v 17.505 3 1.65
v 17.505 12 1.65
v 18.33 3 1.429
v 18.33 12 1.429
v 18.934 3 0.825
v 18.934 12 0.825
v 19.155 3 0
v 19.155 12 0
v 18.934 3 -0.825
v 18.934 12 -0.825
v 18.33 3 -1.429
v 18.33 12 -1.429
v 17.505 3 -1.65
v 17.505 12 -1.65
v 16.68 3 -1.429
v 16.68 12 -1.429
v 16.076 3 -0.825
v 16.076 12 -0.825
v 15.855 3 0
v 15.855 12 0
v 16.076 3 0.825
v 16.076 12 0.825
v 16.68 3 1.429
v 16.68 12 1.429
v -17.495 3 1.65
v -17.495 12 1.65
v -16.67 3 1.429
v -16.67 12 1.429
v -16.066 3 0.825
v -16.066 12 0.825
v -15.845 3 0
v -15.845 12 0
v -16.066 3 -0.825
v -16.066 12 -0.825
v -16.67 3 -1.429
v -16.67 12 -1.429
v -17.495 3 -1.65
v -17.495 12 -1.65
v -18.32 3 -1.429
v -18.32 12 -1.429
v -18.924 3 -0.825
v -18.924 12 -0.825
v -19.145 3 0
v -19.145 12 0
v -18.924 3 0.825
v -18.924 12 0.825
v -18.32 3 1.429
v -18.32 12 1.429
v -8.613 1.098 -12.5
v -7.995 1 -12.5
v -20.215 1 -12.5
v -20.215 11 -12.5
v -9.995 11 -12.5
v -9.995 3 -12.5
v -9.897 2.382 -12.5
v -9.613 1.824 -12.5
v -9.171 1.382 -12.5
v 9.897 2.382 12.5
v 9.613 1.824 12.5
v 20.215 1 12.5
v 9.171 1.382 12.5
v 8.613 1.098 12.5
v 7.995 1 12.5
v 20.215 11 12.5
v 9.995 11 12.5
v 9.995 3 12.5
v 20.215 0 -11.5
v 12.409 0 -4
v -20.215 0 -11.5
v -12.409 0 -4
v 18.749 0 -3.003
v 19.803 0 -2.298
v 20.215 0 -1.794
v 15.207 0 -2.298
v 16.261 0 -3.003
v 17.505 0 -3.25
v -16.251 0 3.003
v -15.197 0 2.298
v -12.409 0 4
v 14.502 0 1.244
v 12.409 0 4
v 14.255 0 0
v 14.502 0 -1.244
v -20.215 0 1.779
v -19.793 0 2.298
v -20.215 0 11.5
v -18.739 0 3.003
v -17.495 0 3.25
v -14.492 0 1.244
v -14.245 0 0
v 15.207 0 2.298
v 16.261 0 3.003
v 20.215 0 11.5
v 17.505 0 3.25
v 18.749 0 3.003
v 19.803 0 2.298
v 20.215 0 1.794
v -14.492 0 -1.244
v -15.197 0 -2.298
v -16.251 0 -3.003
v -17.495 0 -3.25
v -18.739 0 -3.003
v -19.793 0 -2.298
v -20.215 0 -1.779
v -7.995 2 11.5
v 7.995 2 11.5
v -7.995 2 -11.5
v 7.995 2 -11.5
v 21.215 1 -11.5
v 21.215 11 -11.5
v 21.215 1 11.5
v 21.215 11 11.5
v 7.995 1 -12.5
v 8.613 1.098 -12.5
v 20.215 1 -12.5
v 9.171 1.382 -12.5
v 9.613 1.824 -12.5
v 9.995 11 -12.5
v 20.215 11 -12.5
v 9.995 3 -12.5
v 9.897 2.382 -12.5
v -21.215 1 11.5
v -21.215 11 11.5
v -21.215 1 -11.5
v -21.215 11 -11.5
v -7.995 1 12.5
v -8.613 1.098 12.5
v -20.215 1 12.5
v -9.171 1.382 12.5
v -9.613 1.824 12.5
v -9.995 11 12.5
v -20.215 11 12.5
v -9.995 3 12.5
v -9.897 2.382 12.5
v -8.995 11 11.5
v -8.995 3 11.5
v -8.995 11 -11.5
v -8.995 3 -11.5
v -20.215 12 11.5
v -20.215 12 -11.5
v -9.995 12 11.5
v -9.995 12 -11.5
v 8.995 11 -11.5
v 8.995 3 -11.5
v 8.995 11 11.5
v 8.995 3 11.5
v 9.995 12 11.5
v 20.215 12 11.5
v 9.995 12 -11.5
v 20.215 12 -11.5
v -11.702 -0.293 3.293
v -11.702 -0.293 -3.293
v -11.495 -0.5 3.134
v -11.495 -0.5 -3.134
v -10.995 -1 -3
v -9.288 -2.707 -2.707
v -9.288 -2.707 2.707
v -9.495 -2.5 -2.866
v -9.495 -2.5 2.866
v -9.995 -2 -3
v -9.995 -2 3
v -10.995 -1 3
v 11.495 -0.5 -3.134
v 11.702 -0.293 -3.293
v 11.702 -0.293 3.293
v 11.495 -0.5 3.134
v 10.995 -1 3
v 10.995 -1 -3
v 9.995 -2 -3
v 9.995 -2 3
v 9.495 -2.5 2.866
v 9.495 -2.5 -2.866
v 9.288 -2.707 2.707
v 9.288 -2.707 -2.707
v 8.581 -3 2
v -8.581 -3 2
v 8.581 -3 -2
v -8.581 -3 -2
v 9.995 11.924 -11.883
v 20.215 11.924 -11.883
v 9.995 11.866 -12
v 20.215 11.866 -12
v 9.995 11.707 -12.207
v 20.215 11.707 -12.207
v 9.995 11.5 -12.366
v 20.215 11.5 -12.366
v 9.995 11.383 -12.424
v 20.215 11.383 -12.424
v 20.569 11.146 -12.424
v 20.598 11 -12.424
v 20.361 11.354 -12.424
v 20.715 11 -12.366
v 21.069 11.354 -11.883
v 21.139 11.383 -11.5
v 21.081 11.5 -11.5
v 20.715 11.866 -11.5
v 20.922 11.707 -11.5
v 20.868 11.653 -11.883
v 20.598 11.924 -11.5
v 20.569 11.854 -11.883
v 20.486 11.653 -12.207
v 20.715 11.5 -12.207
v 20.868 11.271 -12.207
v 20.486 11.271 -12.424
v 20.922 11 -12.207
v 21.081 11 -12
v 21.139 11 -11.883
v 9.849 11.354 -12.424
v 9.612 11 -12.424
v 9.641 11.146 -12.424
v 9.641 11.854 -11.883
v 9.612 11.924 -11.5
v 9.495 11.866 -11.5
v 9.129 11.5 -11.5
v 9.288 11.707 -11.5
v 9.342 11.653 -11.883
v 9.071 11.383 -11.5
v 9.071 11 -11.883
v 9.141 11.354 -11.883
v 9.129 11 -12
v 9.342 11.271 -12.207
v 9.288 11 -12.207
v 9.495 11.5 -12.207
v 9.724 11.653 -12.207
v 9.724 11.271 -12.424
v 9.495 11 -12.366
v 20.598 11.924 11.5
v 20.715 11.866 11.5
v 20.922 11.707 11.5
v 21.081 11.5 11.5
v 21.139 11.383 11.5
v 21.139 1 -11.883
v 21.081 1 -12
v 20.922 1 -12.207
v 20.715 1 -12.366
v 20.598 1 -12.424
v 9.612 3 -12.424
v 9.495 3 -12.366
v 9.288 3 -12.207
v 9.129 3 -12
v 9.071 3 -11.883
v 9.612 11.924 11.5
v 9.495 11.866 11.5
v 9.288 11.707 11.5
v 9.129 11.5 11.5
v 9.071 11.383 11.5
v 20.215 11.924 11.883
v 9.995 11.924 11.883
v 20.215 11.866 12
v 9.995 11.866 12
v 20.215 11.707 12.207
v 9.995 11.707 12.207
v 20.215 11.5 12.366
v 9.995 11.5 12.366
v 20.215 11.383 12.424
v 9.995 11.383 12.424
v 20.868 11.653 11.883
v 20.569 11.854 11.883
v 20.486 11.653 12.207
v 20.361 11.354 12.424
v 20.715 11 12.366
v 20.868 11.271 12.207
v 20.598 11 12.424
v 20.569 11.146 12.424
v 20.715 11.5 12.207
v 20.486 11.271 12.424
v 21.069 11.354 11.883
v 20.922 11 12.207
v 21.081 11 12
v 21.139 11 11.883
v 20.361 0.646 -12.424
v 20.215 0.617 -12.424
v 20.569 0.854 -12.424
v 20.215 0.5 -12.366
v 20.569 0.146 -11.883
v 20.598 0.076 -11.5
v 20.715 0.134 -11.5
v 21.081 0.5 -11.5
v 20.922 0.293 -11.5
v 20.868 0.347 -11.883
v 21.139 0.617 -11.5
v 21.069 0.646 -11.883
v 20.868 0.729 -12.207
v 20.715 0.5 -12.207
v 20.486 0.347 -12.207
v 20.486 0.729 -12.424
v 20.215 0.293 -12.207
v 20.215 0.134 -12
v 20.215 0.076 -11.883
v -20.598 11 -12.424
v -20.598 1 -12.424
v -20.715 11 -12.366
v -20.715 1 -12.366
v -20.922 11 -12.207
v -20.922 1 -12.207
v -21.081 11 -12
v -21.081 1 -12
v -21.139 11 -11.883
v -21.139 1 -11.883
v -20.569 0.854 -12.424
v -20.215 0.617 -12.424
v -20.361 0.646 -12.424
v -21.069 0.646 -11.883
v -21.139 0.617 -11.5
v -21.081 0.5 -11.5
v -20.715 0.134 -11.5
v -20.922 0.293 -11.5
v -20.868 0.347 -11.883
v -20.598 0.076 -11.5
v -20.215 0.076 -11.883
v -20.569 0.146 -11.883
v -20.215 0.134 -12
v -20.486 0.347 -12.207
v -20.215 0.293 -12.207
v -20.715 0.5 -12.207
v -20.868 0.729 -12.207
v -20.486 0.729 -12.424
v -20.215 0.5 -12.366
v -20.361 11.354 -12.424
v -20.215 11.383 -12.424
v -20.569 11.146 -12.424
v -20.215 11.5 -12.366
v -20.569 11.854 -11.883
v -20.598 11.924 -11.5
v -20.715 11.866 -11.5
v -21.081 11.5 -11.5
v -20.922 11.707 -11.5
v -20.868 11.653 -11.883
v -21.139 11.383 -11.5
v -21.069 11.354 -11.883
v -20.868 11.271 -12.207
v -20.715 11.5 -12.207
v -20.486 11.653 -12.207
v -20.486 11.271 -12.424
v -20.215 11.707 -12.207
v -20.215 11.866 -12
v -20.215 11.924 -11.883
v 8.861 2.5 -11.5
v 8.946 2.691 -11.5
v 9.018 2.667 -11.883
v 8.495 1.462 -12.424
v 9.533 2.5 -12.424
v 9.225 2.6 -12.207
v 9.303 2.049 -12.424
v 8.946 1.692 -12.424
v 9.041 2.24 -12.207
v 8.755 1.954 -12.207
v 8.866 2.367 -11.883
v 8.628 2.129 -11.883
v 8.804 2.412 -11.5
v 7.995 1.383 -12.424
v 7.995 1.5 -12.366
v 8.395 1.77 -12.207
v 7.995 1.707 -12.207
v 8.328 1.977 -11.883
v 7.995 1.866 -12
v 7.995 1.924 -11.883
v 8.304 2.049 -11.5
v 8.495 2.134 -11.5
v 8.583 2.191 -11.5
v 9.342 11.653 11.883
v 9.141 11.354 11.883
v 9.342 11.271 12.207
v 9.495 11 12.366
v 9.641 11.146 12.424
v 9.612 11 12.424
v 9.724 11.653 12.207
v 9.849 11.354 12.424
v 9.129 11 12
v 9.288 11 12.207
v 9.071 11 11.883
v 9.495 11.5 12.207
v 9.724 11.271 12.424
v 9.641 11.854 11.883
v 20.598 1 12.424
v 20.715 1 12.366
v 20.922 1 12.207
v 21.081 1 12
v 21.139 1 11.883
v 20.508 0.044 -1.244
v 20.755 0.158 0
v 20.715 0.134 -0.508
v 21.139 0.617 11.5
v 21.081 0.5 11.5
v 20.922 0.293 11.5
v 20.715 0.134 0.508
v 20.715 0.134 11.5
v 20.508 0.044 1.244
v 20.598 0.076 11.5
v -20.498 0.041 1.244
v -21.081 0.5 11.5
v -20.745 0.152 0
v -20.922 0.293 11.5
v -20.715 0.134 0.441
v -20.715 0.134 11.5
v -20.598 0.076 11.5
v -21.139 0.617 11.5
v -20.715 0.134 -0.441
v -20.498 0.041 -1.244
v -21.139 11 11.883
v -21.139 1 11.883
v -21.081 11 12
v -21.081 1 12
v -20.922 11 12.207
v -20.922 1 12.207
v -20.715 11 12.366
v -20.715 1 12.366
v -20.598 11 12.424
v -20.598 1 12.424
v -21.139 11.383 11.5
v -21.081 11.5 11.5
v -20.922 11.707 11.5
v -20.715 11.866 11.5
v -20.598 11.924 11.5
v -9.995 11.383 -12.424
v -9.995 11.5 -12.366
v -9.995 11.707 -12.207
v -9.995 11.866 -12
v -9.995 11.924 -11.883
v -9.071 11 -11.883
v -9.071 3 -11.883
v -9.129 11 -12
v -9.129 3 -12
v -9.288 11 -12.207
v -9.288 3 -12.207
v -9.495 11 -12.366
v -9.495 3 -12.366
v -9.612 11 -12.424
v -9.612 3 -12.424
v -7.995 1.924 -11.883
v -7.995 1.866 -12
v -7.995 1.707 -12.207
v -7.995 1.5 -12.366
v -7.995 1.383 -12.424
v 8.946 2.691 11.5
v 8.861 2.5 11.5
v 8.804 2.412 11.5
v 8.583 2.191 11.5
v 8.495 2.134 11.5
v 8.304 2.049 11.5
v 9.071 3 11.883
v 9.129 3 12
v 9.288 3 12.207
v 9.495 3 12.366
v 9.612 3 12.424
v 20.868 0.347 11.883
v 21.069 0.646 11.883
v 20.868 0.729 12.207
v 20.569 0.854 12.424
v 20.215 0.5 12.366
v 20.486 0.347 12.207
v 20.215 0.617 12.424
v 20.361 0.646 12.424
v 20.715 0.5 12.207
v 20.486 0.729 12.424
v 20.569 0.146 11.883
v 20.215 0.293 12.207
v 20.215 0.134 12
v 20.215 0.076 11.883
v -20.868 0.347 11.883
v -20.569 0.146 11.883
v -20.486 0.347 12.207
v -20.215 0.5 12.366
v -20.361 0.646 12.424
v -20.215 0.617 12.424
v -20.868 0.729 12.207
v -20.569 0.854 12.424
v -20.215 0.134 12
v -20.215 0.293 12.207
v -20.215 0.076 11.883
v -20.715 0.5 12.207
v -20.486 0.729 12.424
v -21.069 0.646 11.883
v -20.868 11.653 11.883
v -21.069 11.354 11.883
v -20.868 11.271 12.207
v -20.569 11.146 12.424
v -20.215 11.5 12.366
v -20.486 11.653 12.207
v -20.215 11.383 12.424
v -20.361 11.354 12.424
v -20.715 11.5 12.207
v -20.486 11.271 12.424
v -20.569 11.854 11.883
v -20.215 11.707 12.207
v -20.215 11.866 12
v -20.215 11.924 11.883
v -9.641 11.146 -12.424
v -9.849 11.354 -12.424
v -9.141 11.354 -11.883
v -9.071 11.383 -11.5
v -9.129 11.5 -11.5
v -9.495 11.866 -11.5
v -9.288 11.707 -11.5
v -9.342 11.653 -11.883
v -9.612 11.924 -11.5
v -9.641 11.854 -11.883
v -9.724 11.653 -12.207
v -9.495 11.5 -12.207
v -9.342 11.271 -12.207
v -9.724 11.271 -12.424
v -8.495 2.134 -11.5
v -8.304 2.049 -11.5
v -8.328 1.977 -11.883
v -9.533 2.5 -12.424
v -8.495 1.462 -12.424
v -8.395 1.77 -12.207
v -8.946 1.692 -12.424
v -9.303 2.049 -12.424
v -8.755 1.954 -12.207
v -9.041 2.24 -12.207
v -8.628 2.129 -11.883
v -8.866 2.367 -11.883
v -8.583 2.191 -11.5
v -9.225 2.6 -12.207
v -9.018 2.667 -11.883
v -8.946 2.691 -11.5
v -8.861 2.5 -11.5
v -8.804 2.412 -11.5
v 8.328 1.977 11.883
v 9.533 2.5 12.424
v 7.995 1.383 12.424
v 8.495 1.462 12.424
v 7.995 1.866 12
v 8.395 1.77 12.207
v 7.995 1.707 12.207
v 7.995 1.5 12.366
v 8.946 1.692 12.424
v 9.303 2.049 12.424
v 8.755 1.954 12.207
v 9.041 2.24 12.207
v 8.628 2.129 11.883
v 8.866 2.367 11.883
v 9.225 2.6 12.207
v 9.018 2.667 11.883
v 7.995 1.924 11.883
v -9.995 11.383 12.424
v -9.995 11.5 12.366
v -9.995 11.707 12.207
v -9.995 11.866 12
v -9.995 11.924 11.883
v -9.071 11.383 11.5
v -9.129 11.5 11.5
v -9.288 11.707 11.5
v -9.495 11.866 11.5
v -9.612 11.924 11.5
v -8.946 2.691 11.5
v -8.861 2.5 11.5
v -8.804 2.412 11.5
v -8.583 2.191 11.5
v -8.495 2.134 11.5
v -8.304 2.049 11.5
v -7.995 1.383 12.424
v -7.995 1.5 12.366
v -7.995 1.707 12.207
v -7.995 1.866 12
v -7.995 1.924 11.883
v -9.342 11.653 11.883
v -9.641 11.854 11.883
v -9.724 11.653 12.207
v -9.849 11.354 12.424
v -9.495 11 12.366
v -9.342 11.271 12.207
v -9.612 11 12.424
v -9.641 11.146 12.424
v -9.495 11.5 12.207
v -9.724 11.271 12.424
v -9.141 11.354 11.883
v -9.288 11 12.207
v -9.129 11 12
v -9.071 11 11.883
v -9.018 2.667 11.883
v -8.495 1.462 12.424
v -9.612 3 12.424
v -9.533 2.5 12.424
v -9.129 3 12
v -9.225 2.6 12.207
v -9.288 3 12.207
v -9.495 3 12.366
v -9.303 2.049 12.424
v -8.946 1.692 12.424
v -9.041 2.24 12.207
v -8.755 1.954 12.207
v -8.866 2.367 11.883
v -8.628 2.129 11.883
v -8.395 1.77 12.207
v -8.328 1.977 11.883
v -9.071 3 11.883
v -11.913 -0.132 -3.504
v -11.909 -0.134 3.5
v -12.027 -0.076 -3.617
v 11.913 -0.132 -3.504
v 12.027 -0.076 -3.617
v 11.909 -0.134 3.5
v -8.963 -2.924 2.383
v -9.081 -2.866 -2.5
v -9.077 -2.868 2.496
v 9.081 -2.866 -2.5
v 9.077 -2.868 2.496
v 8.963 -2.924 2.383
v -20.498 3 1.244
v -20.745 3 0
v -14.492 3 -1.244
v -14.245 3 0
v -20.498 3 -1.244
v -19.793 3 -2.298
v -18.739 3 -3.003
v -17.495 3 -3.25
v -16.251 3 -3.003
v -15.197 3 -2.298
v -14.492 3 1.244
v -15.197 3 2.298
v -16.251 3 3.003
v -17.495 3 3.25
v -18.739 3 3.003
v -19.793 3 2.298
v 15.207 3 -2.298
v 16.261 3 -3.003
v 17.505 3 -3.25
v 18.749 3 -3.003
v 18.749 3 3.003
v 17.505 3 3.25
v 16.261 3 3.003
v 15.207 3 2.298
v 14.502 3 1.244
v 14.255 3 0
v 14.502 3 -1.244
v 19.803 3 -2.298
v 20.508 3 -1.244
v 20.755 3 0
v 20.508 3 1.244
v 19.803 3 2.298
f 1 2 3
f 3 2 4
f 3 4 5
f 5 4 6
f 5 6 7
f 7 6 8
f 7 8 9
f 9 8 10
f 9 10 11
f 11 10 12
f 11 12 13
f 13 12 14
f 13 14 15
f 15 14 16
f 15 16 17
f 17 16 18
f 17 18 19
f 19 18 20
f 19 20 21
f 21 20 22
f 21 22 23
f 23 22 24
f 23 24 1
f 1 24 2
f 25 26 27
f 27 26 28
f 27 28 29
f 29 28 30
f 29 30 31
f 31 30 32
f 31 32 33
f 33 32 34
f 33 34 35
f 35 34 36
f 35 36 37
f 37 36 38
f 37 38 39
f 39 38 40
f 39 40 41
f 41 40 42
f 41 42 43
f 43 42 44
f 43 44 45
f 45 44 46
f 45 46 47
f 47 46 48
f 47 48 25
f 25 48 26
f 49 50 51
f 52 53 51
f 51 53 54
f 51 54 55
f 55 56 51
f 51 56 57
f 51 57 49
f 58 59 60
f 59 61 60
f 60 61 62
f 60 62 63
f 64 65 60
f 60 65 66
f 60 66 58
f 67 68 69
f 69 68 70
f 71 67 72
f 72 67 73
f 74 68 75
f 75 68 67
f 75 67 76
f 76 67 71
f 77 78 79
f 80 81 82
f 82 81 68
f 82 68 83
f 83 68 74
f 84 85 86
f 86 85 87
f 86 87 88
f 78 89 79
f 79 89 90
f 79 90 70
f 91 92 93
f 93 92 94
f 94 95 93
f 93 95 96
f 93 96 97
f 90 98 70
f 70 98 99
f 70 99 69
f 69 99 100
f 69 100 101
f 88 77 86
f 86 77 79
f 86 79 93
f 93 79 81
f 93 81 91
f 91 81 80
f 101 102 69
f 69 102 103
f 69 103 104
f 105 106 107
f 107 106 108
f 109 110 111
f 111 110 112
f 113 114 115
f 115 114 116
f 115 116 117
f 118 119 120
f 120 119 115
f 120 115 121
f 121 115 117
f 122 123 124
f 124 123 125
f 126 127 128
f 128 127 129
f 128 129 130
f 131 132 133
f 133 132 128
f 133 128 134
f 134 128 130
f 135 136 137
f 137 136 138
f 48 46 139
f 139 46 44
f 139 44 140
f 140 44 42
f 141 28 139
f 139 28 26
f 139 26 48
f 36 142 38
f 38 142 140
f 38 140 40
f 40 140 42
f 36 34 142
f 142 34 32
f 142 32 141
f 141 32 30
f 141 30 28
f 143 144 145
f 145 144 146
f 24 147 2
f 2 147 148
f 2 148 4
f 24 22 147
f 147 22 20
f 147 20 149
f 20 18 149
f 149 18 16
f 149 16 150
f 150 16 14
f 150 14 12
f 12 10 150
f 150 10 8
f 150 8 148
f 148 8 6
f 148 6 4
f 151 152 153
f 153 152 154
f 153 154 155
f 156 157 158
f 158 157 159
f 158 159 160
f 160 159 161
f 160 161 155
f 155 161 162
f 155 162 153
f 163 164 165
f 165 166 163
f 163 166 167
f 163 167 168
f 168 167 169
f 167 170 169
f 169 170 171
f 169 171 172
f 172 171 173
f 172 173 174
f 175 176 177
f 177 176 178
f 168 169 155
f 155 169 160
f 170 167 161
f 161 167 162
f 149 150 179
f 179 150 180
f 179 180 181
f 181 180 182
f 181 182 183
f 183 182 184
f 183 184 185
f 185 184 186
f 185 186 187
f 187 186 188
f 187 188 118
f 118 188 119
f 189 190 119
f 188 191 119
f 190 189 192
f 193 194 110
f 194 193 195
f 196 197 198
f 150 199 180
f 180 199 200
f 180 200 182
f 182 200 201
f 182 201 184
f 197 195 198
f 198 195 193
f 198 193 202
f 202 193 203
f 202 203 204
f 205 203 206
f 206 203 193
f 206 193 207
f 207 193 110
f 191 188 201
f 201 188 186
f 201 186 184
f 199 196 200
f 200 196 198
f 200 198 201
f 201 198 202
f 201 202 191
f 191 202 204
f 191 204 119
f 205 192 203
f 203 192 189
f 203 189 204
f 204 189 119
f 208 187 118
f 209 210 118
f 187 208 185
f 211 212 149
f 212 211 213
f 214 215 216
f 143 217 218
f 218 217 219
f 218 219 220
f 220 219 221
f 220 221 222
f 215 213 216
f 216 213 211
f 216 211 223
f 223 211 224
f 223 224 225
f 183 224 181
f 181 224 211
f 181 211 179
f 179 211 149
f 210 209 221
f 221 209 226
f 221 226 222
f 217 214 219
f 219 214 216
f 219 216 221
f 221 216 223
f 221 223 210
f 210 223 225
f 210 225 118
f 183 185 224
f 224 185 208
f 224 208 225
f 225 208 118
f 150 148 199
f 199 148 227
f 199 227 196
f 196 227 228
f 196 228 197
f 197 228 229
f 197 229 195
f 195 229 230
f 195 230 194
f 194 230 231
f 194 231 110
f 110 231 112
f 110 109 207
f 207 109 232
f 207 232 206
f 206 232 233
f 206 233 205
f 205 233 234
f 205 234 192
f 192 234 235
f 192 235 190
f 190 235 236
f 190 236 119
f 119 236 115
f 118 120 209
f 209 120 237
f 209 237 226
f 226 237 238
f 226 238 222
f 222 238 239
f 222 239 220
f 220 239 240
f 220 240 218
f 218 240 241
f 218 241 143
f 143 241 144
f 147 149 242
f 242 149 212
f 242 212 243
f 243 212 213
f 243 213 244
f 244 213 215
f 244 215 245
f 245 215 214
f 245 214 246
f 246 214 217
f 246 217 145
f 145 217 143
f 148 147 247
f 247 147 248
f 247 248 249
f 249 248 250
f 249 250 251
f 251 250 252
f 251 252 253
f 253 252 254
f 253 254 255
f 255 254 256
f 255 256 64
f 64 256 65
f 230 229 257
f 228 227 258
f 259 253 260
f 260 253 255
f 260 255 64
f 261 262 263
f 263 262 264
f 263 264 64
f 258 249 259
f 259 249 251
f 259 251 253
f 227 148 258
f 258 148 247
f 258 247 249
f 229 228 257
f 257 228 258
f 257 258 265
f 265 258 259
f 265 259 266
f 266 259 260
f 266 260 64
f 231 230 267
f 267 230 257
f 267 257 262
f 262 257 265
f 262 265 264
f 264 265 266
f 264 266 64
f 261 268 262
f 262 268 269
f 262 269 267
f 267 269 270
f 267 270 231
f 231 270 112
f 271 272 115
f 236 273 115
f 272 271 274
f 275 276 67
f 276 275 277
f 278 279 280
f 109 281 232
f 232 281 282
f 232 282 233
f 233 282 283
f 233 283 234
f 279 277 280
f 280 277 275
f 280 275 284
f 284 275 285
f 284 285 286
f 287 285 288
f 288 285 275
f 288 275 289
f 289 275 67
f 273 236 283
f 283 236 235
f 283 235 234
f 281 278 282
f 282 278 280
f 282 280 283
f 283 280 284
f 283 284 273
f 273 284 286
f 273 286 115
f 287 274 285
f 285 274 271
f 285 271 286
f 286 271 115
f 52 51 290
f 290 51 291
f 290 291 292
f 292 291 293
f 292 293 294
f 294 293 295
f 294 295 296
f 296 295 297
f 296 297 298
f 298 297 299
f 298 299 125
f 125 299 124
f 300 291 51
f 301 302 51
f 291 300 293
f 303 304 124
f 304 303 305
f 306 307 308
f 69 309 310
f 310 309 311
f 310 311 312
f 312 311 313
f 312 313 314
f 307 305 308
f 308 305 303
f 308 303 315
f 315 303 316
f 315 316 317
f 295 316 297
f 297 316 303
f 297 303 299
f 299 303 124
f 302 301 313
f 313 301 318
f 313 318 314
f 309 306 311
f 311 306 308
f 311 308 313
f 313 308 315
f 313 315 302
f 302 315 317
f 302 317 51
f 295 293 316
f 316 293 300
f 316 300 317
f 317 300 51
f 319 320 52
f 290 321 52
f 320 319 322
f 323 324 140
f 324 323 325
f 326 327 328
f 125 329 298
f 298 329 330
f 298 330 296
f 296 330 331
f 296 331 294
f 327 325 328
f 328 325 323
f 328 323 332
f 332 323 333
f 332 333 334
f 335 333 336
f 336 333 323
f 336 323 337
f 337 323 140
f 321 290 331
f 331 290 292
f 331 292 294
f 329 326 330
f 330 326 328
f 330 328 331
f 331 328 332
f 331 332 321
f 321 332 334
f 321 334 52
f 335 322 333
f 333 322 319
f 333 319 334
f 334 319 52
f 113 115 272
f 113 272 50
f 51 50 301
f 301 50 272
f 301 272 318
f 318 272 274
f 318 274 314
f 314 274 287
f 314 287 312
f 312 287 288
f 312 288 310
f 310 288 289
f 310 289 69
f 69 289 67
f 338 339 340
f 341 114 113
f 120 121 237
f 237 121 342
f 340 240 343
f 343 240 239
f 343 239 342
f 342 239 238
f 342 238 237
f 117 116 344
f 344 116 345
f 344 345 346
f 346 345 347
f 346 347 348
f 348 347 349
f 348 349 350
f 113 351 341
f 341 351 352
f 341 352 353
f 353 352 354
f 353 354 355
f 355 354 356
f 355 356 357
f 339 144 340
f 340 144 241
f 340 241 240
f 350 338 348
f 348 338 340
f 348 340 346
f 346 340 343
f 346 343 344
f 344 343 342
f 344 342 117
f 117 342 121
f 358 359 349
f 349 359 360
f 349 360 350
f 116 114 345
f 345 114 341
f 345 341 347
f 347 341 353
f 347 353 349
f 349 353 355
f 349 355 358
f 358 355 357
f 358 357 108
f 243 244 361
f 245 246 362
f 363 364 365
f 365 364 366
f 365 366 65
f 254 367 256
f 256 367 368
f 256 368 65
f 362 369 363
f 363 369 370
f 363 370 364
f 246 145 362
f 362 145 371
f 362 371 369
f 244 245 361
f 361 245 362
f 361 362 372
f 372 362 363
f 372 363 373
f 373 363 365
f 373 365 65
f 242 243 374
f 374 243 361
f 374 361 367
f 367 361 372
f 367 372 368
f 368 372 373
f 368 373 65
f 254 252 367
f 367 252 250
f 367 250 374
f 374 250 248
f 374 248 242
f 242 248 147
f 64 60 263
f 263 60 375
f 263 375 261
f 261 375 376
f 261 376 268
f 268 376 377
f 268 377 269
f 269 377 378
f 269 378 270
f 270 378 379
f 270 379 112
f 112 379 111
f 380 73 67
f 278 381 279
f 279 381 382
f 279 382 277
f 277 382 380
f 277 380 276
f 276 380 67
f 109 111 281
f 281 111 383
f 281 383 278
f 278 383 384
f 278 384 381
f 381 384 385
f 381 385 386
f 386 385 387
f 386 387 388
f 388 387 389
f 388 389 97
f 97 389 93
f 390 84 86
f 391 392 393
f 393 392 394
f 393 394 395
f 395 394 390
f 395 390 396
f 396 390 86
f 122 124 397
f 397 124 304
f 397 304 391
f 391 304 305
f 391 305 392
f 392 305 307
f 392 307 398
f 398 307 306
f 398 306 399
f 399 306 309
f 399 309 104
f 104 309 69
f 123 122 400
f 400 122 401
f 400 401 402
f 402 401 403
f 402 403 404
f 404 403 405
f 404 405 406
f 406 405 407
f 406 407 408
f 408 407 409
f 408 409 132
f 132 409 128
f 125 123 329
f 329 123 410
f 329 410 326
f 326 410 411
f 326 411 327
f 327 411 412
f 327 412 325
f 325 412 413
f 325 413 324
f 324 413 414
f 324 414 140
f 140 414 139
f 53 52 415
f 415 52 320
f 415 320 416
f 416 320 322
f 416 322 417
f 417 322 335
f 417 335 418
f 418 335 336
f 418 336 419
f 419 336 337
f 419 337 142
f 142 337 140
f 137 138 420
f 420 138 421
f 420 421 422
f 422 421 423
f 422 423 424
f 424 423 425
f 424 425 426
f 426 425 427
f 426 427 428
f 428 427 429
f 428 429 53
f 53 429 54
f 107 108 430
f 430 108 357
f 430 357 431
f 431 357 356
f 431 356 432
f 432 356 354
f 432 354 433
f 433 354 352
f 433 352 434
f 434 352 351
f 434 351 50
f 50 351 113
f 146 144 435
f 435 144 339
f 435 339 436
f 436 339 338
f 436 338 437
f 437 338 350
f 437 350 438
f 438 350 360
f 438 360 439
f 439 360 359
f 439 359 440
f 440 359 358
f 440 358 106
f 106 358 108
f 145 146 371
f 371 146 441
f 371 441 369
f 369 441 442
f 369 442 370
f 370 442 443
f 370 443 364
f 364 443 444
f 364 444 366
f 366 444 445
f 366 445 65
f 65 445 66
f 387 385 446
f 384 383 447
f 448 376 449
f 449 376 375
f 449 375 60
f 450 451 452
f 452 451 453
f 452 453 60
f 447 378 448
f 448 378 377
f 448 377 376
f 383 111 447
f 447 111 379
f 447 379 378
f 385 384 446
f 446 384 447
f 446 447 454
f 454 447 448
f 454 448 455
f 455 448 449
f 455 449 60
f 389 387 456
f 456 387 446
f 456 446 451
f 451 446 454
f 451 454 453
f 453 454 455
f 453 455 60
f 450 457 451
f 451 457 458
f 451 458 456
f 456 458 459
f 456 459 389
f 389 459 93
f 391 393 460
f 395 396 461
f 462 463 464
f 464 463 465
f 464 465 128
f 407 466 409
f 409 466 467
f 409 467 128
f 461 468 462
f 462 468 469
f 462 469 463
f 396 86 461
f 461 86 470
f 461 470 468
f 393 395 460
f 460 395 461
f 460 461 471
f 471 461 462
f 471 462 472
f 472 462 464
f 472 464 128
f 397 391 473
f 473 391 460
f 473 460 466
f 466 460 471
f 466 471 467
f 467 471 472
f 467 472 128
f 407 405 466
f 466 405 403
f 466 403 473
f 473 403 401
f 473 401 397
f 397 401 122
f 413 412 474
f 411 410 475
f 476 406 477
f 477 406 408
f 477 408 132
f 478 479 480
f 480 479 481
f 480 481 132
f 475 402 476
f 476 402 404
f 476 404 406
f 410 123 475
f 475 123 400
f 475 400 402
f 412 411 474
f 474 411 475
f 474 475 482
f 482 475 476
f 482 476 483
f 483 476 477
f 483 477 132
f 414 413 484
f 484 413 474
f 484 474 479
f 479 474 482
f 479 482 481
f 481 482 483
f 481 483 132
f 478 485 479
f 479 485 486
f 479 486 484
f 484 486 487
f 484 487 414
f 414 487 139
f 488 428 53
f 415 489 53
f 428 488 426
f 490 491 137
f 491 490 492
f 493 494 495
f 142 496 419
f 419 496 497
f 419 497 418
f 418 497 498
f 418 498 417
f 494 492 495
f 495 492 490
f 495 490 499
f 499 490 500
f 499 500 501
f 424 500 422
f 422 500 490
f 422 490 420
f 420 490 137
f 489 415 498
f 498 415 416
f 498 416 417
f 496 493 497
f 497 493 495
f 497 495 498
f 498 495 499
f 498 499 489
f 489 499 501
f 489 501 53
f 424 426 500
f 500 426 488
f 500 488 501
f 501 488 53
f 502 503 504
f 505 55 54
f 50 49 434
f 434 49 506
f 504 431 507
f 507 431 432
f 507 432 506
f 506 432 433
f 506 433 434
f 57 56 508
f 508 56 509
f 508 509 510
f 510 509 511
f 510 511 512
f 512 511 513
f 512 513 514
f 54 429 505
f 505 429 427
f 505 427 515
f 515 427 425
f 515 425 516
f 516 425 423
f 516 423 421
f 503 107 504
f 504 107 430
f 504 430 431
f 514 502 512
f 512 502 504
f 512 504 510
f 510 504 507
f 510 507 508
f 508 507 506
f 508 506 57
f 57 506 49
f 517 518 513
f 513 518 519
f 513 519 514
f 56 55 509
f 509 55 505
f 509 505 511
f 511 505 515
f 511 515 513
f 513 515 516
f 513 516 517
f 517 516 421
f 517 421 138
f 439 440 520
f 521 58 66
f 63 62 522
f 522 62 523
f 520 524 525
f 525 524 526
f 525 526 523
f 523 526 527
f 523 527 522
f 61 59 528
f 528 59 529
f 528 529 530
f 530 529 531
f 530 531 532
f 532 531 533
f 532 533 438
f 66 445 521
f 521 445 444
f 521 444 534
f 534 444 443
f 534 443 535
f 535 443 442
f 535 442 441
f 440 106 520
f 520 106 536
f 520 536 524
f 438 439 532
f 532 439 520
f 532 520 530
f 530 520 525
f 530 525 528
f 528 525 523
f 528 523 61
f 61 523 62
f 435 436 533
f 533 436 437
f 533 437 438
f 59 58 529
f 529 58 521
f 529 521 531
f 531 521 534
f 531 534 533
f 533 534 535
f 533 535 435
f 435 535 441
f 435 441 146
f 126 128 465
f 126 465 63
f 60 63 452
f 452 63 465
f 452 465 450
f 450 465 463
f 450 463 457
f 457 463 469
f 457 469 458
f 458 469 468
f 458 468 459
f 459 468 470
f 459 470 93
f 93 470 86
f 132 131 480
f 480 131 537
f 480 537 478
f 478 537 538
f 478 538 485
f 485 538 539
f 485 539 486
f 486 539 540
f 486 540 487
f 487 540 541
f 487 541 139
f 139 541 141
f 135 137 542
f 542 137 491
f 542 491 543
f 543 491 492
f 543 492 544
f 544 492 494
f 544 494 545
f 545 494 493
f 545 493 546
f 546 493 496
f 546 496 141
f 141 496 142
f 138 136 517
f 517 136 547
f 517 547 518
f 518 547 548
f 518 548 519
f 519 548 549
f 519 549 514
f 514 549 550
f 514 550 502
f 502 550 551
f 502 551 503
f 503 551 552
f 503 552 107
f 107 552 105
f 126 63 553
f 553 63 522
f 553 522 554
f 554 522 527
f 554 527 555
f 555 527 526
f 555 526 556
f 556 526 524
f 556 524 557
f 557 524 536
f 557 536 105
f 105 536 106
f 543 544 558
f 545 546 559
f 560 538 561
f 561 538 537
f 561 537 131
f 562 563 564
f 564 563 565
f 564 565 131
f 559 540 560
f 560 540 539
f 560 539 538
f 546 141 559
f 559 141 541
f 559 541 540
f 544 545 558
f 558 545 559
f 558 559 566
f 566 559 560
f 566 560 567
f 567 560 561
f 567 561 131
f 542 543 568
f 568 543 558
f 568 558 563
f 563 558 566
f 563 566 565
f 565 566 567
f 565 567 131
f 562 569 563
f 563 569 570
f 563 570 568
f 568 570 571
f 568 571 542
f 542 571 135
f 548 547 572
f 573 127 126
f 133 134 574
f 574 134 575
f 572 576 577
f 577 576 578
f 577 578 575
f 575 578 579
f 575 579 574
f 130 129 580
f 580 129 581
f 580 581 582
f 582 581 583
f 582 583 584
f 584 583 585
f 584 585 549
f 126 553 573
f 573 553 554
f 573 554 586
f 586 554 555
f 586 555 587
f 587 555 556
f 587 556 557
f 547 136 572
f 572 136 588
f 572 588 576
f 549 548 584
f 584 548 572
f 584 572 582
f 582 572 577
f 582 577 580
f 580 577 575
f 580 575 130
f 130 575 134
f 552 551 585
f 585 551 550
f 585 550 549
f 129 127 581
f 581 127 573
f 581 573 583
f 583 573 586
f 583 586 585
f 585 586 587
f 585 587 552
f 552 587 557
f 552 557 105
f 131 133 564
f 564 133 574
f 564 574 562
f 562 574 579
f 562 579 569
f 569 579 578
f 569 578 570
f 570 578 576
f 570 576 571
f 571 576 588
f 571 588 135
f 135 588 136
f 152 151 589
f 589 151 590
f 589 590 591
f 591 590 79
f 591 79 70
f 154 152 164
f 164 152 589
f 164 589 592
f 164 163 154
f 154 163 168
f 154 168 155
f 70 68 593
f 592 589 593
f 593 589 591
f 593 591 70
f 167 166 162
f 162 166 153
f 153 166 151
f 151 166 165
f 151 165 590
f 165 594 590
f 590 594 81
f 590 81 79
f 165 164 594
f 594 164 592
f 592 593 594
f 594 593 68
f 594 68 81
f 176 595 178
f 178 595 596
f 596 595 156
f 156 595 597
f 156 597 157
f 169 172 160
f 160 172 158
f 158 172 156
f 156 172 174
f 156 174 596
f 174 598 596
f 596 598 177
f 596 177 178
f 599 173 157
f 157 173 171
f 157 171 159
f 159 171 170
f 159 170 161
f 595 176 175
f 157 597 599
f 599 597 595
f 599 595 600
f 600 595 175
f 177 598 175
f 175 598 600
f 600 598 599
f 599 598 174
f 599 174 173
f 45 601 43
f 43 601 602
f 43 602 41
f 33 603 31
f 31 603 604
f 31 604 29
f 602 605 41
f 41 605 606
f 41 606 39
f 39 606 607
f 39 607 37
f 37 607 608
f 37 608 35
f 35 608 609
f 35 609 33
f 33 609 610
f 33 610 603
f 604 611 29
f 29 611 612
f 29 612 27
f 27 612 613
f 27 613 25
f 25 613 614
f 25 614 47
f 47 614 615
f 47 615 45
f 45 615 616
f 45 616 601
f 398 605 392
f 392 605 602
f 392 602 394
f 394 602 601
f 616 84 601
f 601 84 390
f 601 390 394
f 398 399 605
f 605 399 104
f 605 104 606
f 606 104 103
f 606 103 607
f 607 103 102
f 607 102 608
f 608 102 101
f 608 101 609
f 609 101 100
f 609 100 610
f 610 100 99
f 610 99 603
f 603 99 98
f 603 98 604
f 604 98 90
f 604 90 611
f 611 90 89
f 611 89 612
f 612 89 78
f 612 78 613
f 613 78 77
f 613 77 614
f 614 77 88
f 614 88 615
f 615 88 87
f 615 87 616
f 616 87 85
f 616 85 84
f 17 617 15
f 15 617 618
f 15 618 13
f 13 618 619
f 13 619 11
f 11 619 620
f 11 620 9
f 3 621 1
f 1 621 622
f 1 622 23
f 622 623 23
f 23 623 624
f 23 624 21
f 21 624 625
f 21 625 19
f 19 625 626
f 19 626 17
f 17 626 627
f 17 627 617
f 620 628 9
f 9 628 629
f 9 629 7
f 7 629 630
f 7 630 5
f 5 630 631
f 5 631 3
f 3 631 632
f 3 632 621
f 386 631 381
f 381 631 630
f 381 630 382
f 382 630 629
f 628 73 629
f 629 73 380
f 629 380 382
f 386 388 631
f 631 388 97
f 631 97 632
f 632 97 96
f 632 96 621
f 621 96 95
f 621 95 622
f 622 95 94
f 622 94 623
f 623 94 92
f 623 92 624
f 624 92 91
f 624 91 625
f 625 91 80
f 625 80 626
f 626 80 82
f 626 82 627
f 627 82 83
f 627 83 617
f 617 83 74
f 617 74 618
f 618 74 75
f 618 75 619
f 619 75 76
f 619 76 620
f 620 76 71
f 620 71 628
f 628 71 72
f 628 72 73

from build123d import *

# Parameters (mm, degrees)
SKETCH_1_W           = 42.43
SKETCH_1_H           = 25
EXTRUDE_1_DEPTH      = 2
SKETCH_2_W           = 12.22
SKETCH_2_H           = 25
EXTRUDE_2_DEPTH      = 10
SKETCH_3_R           = 1.65
CUT_EXTRUDE_1_DEPTH  = 28.392083254
EXTRUDE_3_DEPTH      = 3
EXTRUDE_3_DEPTH_BACK = 3
FILLET_2_R           = 1
SKETCH_5_R           = 3.25
CUT_EXTRUDE_2_DEPTH  = 3


with BuildPart() as part:
    # ｽｹｯﾁ1 → ﾎﾞｽ - 押し出し1 (new body)
    with BuildSketch(Plane(origin=(0, 0, 0), x_dir=(1, 0, 0), z_dir=(0, 1, 0))):
        Rectangle(SKETCH_1_W, SKETCH_1_H)
    extrude(amount=EXTRUDE_1_DEPTH)

    # ｽｹｯﾁ2 → ﾎﾞｽ - 押し出し2 (add)
    with BuildSketch(Plane(origin=(0, 2, 0), x_dir=(1, 0, 0), z_dir=(0, 1, 0))):
        with Locations((-15.105, 0)):
            Rectangle(SKETCH_2_W, SKETCH_2_H)
        with Locations((15.105, 0)):
            Rectangle(SKETCH_2_W, SKETCH_2_H)
    extrude(amount=EXTRUDE_2_DEPTH)

    # ｽｹｯﾁ3 → ｶｯﾄ - 押し出し1 (cut, through all)
    with BuildSketch(Plane(origin=(0, 12, 0), x_dir=(1, 0, 0), z_dir=(0, 1, 0))):
        with Locations(Location((-17.495, 0, 0), (0, 0, 270))):
            Circle(SKETCH_3_R)
        with Locations(Location((17.505, 0, 0), (0, 0, 270))):
            Circle(SKETCH_3_R)
    extrude(amount=-CUT_EXTRUDE_1_DEPTH, mode=Mode.SUBTRACT)

    # ｽｹｯﾁ4 → ﾎﾞｽ - 押し出し3 (add, two sides: drawn at the far end of the back side and taken through both)
    with BuildSketch(Plane.XY.offset(-EXTRUDE_3_DEPTH_BACK)):
        Polygon((-11.995, 0), (-8.995, -3), (8.995, -3), (11.995, 0), align=None)
    extrude(amount=EXTRUDE_3_DEPTH + EXTRUDE_3_DEPTH_BACK)

    # ﾌｨﾚｯﾄ2
    fillet_2_edges = [part.edges().sort_by_distance(p)[0] for p in [
        (0, 2, 12.5),
        (-8.995, 2, 0),
        (-8.995, 7, 12.5),
        (-8.995, 7, -12.5),
        (-21.215, 12, 0),
        (-15.105, 12, 12.5),
        (-8.995, 12, 0),
        (-15.105, 12, -12.5),
        (0, 2, -12.5),
        (8.995, 2, 0),
        (8.995, 7, -12.5),
        (8.995, 7, 12.5),
        (21.215, 12, 0),
        (15.105, 12, -12.5),
        (8.995, 12, 0),
        (15.105, 12, 12.5),
        (-8.995, -3, 0),
        (-11.995, 0, 0),
        (0, 0, 3),
        (11.995, 0, 0),
        (0, 0, 12.5),
        (8.995, -3, 0),
        (0, -3, -3),
        (0, 0, -3),
        (0, -3, 3),
        (-21.215, 0, 0),
        (0, 0, -12.5),
        (21.215, 0, 0),
        (21.215, 6, 12.5),
        (-21.215, 6, 12.5),
        (-21.215, 6, -12.5),
        (21.215, 6, -12.5),
    ]]
    fillet(fillet_2_edges, radius=FILLET_2_R - 0.0001)  # a hair under: the kernel refuses the full size

    # ｽｹｯﾁ5 → ｶｯﾄ - 押し出し2 (cut)
    with BuildSketch(Plane(origin=(0, 0, 0), x_dir=(-1, 0, 0), z_dir=(0, -1, 0))):
        with Locations(Location((-17.505, 0, 0), (0, 0, 90))):
            Circle(SKETCH_5_R)
        with Locations(Location((17.495, 0, 0), (0, 0, 90))):
            Circle(SKETCH_5_R)
    extrude(amount=-CUT_EXTRUDE_2_DEPTH, mode=Mode.SUBTRACT)


solid = part.part
